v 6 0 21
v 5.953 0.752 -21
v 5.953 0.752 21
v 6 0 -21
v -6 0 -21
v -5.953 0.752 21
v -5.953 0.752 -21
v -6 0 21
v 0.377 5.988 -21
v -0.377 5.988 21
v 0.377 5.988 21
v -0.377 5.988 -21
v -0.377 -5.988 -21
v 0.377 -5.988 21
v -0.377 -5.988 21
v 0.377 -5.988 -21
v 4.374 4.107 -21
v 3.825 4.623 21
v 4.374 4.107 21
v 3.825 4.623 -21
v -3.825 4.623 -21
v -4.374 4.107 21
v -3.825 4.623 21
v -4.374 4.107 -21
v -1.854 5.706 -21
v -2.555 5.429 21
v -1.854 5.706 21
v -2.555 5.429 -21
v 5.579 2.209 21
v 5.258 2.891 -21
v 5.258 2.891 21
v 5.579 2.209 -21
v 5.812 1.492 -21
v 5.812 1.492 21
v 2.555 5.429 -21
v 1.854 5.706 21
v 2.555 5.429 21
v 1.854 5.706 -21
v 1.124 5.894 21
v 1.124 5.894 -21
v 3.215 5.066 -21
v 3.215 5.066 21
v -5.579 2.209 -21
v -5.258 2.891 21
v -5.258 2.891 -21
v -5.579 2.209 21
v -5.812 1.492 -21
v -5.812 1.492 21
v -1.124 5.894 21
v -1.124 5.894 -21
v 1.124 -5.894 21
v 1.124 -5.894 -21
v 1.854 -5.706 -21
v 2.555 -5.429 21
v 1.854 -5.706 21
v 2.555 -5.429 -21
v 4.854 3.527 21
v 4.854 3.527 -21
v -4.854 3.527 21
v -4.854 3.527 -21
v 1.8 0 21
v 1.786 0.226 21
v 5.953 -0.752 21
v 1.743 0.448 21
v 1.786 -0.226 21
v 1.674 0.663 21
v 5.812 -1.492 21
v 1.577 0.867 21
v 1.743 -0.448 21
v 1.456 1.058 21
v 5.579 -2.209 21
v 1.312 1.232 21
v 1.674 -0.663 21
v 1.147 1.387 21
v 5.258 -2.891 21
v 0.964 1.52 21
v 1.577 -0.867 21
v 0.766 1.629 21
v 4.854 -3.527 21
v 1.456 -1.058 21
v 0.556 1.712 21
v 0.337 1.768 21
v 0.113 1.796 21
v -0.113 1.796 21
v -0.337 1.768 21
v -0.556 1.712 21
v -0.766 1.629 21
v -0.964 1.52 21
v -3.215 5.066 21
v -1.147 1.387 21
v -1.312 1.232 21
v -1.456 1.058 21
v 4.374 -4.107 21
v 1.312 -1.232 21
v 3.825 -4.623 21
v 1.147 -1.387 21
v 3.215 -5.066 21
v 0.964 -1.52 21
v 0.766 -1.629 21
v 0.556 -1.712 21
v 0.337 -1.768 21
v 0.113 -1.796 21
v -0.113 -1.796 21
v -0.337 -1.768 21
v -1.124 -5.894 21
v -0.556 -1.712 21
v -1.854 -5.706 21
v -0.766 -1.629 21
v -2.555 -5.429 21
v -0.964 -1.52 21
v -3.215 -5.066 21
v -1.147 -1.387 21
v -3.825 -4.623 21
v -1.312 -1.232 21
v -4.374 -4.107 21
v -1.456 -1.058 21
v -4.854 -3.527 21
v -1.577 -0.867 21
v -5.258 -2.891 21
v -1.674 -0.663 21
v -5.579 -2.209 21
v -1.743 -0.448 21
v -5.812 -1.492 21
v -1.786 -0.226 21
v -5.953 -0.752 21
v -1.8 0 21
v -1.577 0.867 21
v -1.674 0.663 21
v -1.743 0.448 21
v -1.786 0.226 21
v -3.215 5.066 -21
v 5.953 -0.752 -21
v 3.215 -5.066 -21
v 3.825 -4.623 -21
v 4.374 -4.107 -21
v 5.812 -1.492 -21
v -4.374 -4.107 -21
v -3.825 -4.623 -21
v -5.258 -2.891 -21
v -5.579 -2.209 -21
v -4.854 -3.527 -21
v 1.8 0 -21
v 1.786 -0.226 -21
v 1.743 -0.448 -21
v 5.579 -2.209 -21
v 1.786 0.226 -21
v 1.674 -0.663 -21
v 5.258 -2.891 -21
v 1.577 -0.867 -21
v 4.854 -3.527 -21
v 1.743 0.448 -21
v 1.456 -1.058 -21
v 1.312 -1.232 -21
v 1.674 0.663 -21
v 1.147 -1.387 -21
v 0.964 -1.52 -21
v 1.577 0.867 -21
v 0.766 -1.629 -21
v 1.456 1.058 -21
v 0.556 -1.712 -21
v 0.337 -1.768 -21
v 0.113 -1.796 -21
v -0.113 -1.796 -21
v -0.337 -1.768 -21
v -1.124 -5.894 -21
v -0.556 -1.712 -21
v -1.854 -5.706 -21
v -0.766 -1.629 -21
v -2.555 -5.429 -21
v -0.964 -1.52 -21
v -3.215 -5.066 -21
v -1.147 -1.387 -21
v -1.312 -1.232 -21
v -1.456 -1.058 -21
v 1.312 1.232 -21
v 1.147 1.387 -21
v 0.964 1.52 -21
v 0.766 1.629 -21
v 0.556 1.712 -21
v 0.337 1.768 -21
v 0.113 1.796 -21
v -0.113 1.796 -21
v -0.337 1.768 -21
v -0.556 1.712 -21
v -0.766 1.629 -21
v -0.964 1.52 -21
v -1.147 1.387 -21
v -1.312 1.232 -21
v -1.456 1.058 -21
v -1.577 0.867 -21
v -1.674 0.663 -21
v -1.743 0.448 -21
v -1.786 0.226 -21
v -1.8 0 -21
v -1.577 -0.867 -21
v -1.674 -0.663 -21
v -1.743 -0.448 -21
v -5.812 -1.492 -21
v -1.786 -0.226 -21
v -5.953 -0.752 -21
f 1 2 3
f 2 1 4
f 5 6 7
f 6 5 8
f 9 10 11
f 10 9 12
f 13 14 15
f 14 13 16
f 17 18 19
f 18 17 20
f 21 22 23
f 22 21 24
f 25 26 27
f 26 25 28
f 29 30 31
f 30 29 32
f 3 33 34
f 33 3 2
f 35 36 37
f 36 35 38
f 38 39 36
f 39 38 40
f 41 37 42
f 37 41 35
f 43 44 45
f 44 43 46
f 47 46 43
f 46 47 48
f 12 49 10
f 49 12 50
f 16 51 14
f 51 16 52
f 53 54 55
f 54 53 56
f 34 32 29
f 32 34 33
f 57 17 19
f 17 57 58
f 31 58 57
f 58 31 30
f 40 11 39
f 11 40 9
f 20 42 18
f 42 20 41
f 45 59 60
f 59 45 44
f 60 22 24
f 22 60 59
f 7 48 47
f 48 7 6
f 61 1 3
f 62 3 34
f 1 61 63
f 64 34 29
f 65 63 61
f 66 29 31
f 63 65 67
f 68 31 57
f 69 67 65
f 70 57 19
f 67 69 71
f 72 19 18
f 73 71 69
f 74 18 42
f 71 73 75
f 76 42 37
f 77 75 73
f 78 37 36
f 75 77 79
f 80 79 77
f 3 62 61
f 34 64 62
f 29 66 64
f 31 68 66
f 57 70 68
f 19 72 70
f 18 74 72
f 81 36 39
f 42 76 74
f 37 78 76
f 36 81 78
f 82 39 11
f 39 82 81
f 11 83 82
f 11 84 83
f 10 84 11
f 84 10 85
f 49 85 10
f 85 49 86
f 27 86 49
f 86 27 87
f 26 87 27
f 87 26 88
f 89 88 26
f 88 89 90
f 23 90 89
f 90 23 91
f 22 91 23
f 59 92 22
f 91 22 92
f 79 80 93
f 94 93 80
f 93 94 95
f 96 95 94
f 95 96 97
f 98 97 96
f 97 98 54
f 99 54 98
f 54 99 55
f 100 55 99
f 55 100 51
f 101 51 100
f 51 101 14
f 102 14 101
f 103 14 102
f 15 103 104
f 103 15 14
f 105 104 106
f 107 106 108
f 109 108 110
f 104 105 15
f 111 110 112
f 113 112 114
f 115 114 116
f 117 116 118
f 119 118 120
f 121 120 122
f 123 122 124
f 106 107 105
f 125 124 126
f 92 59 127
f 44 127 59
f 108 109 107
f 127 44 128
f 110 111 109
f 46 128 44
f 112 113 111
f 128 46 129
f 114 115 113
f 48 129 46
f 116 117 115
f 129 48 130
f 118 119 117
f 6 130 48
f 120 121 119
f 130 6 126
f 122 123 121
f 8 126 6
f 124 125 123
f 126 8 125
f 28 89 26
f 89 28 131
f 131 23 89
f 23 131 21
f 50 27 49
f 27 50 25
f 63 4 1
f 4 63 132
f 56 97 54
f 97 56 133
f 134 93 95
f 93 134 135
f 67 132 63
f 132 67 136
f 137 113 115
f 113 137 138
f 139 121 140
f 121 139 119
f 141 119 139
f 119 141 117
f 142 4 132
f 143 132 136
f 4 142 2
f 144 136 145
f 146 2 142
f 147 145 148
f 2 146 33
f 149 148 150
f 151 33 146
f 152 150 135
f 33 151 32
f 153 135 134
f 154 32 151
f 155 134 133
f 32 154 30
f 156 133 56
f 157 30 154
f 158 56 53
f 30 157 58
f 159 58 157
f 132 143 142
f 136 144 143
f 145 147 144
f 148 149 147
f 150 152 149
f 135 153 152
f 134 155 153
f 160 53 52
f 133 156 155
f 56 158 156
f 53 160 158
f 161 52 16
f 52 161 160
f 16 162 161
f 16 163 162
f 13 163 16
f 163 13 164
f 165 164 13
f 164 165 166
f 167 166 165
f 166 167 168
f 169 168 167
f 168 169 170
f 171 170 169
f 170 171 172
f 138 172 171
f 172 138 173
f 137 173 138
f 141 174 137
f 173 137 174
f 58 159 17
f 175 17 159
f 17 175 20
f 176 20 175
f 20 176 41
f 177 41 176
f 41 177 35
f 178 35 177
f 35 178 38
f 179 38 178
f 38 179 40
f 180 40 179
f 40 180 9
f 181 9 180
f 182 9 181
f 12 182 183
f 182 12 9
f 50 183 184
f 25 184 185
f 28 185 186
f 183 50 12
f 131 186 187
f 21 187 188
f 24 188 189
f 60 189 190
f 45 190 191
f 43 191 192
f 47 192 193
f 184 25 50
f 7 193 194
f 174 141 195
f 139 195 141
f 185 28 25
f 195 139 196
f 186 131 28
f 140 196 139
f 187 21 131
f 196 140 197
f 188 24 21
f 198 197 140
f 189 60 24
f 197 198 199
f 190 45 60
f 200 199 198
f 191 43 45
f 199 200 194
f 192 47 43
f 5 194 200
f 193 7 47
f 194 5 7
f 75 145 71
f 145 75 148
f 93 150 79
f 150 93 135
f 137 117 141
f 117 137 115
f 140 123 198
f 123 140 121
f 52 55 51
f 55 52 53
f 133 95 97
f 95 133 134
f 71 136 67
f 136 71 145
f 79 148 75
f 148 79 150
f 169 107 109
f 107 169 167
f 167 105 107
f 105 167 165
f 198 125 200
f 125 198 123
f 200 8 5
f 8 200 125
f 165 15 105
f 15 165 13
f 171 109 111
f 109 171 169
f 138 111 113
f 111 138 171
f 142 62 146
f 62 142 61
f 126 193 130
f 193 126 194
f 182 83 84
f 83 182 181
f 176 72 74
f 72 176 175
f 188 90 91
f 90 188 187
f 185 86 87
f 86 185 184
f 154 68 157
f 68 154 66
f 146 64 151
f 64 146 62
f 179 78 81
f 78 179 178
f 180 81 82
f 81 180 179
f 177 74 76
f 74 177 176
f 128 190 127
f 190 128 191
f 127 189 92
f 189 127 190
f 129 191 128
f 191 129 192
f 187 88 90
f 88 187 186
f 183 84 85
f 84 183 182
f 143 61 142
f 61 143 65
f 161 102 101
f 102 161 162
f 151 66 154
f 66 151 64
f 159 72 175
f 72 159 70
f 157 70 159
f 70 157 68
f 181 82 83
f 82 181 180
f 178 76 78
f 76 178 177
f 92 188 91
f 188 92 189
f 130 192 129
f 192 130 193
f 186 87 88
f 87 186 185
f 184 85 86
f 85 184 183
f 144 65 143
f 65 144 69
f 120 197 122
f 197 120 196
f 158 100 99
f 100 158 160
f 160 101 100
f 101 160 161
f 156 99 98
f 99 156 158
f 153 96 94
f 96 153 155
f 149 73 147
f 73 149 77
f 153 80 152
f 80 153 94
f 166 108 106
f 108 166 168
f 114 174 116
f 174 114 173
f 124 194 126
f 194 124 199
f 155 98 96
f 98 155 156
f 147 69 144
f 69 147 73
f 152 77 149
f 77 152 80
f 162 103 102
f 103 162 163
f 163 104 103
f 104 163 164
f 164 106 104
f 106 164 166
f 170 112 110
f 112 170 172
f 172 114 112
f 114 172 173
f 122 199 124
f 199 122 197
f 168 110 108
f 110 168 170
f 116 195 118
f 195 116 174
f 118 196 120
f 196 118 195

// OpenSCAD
$fn = 50;


difference() {
	union() {
		translate(v = [0, 0, -21.0000000000]) {
			cylinder(h = 42, r = 6.0000000000);
		}
	}
	union() {
		translate(v = [0, 0, -100.0000000000]) {
			cylinder(h = 200, r = 1.8000000000);
		}
	}
}
